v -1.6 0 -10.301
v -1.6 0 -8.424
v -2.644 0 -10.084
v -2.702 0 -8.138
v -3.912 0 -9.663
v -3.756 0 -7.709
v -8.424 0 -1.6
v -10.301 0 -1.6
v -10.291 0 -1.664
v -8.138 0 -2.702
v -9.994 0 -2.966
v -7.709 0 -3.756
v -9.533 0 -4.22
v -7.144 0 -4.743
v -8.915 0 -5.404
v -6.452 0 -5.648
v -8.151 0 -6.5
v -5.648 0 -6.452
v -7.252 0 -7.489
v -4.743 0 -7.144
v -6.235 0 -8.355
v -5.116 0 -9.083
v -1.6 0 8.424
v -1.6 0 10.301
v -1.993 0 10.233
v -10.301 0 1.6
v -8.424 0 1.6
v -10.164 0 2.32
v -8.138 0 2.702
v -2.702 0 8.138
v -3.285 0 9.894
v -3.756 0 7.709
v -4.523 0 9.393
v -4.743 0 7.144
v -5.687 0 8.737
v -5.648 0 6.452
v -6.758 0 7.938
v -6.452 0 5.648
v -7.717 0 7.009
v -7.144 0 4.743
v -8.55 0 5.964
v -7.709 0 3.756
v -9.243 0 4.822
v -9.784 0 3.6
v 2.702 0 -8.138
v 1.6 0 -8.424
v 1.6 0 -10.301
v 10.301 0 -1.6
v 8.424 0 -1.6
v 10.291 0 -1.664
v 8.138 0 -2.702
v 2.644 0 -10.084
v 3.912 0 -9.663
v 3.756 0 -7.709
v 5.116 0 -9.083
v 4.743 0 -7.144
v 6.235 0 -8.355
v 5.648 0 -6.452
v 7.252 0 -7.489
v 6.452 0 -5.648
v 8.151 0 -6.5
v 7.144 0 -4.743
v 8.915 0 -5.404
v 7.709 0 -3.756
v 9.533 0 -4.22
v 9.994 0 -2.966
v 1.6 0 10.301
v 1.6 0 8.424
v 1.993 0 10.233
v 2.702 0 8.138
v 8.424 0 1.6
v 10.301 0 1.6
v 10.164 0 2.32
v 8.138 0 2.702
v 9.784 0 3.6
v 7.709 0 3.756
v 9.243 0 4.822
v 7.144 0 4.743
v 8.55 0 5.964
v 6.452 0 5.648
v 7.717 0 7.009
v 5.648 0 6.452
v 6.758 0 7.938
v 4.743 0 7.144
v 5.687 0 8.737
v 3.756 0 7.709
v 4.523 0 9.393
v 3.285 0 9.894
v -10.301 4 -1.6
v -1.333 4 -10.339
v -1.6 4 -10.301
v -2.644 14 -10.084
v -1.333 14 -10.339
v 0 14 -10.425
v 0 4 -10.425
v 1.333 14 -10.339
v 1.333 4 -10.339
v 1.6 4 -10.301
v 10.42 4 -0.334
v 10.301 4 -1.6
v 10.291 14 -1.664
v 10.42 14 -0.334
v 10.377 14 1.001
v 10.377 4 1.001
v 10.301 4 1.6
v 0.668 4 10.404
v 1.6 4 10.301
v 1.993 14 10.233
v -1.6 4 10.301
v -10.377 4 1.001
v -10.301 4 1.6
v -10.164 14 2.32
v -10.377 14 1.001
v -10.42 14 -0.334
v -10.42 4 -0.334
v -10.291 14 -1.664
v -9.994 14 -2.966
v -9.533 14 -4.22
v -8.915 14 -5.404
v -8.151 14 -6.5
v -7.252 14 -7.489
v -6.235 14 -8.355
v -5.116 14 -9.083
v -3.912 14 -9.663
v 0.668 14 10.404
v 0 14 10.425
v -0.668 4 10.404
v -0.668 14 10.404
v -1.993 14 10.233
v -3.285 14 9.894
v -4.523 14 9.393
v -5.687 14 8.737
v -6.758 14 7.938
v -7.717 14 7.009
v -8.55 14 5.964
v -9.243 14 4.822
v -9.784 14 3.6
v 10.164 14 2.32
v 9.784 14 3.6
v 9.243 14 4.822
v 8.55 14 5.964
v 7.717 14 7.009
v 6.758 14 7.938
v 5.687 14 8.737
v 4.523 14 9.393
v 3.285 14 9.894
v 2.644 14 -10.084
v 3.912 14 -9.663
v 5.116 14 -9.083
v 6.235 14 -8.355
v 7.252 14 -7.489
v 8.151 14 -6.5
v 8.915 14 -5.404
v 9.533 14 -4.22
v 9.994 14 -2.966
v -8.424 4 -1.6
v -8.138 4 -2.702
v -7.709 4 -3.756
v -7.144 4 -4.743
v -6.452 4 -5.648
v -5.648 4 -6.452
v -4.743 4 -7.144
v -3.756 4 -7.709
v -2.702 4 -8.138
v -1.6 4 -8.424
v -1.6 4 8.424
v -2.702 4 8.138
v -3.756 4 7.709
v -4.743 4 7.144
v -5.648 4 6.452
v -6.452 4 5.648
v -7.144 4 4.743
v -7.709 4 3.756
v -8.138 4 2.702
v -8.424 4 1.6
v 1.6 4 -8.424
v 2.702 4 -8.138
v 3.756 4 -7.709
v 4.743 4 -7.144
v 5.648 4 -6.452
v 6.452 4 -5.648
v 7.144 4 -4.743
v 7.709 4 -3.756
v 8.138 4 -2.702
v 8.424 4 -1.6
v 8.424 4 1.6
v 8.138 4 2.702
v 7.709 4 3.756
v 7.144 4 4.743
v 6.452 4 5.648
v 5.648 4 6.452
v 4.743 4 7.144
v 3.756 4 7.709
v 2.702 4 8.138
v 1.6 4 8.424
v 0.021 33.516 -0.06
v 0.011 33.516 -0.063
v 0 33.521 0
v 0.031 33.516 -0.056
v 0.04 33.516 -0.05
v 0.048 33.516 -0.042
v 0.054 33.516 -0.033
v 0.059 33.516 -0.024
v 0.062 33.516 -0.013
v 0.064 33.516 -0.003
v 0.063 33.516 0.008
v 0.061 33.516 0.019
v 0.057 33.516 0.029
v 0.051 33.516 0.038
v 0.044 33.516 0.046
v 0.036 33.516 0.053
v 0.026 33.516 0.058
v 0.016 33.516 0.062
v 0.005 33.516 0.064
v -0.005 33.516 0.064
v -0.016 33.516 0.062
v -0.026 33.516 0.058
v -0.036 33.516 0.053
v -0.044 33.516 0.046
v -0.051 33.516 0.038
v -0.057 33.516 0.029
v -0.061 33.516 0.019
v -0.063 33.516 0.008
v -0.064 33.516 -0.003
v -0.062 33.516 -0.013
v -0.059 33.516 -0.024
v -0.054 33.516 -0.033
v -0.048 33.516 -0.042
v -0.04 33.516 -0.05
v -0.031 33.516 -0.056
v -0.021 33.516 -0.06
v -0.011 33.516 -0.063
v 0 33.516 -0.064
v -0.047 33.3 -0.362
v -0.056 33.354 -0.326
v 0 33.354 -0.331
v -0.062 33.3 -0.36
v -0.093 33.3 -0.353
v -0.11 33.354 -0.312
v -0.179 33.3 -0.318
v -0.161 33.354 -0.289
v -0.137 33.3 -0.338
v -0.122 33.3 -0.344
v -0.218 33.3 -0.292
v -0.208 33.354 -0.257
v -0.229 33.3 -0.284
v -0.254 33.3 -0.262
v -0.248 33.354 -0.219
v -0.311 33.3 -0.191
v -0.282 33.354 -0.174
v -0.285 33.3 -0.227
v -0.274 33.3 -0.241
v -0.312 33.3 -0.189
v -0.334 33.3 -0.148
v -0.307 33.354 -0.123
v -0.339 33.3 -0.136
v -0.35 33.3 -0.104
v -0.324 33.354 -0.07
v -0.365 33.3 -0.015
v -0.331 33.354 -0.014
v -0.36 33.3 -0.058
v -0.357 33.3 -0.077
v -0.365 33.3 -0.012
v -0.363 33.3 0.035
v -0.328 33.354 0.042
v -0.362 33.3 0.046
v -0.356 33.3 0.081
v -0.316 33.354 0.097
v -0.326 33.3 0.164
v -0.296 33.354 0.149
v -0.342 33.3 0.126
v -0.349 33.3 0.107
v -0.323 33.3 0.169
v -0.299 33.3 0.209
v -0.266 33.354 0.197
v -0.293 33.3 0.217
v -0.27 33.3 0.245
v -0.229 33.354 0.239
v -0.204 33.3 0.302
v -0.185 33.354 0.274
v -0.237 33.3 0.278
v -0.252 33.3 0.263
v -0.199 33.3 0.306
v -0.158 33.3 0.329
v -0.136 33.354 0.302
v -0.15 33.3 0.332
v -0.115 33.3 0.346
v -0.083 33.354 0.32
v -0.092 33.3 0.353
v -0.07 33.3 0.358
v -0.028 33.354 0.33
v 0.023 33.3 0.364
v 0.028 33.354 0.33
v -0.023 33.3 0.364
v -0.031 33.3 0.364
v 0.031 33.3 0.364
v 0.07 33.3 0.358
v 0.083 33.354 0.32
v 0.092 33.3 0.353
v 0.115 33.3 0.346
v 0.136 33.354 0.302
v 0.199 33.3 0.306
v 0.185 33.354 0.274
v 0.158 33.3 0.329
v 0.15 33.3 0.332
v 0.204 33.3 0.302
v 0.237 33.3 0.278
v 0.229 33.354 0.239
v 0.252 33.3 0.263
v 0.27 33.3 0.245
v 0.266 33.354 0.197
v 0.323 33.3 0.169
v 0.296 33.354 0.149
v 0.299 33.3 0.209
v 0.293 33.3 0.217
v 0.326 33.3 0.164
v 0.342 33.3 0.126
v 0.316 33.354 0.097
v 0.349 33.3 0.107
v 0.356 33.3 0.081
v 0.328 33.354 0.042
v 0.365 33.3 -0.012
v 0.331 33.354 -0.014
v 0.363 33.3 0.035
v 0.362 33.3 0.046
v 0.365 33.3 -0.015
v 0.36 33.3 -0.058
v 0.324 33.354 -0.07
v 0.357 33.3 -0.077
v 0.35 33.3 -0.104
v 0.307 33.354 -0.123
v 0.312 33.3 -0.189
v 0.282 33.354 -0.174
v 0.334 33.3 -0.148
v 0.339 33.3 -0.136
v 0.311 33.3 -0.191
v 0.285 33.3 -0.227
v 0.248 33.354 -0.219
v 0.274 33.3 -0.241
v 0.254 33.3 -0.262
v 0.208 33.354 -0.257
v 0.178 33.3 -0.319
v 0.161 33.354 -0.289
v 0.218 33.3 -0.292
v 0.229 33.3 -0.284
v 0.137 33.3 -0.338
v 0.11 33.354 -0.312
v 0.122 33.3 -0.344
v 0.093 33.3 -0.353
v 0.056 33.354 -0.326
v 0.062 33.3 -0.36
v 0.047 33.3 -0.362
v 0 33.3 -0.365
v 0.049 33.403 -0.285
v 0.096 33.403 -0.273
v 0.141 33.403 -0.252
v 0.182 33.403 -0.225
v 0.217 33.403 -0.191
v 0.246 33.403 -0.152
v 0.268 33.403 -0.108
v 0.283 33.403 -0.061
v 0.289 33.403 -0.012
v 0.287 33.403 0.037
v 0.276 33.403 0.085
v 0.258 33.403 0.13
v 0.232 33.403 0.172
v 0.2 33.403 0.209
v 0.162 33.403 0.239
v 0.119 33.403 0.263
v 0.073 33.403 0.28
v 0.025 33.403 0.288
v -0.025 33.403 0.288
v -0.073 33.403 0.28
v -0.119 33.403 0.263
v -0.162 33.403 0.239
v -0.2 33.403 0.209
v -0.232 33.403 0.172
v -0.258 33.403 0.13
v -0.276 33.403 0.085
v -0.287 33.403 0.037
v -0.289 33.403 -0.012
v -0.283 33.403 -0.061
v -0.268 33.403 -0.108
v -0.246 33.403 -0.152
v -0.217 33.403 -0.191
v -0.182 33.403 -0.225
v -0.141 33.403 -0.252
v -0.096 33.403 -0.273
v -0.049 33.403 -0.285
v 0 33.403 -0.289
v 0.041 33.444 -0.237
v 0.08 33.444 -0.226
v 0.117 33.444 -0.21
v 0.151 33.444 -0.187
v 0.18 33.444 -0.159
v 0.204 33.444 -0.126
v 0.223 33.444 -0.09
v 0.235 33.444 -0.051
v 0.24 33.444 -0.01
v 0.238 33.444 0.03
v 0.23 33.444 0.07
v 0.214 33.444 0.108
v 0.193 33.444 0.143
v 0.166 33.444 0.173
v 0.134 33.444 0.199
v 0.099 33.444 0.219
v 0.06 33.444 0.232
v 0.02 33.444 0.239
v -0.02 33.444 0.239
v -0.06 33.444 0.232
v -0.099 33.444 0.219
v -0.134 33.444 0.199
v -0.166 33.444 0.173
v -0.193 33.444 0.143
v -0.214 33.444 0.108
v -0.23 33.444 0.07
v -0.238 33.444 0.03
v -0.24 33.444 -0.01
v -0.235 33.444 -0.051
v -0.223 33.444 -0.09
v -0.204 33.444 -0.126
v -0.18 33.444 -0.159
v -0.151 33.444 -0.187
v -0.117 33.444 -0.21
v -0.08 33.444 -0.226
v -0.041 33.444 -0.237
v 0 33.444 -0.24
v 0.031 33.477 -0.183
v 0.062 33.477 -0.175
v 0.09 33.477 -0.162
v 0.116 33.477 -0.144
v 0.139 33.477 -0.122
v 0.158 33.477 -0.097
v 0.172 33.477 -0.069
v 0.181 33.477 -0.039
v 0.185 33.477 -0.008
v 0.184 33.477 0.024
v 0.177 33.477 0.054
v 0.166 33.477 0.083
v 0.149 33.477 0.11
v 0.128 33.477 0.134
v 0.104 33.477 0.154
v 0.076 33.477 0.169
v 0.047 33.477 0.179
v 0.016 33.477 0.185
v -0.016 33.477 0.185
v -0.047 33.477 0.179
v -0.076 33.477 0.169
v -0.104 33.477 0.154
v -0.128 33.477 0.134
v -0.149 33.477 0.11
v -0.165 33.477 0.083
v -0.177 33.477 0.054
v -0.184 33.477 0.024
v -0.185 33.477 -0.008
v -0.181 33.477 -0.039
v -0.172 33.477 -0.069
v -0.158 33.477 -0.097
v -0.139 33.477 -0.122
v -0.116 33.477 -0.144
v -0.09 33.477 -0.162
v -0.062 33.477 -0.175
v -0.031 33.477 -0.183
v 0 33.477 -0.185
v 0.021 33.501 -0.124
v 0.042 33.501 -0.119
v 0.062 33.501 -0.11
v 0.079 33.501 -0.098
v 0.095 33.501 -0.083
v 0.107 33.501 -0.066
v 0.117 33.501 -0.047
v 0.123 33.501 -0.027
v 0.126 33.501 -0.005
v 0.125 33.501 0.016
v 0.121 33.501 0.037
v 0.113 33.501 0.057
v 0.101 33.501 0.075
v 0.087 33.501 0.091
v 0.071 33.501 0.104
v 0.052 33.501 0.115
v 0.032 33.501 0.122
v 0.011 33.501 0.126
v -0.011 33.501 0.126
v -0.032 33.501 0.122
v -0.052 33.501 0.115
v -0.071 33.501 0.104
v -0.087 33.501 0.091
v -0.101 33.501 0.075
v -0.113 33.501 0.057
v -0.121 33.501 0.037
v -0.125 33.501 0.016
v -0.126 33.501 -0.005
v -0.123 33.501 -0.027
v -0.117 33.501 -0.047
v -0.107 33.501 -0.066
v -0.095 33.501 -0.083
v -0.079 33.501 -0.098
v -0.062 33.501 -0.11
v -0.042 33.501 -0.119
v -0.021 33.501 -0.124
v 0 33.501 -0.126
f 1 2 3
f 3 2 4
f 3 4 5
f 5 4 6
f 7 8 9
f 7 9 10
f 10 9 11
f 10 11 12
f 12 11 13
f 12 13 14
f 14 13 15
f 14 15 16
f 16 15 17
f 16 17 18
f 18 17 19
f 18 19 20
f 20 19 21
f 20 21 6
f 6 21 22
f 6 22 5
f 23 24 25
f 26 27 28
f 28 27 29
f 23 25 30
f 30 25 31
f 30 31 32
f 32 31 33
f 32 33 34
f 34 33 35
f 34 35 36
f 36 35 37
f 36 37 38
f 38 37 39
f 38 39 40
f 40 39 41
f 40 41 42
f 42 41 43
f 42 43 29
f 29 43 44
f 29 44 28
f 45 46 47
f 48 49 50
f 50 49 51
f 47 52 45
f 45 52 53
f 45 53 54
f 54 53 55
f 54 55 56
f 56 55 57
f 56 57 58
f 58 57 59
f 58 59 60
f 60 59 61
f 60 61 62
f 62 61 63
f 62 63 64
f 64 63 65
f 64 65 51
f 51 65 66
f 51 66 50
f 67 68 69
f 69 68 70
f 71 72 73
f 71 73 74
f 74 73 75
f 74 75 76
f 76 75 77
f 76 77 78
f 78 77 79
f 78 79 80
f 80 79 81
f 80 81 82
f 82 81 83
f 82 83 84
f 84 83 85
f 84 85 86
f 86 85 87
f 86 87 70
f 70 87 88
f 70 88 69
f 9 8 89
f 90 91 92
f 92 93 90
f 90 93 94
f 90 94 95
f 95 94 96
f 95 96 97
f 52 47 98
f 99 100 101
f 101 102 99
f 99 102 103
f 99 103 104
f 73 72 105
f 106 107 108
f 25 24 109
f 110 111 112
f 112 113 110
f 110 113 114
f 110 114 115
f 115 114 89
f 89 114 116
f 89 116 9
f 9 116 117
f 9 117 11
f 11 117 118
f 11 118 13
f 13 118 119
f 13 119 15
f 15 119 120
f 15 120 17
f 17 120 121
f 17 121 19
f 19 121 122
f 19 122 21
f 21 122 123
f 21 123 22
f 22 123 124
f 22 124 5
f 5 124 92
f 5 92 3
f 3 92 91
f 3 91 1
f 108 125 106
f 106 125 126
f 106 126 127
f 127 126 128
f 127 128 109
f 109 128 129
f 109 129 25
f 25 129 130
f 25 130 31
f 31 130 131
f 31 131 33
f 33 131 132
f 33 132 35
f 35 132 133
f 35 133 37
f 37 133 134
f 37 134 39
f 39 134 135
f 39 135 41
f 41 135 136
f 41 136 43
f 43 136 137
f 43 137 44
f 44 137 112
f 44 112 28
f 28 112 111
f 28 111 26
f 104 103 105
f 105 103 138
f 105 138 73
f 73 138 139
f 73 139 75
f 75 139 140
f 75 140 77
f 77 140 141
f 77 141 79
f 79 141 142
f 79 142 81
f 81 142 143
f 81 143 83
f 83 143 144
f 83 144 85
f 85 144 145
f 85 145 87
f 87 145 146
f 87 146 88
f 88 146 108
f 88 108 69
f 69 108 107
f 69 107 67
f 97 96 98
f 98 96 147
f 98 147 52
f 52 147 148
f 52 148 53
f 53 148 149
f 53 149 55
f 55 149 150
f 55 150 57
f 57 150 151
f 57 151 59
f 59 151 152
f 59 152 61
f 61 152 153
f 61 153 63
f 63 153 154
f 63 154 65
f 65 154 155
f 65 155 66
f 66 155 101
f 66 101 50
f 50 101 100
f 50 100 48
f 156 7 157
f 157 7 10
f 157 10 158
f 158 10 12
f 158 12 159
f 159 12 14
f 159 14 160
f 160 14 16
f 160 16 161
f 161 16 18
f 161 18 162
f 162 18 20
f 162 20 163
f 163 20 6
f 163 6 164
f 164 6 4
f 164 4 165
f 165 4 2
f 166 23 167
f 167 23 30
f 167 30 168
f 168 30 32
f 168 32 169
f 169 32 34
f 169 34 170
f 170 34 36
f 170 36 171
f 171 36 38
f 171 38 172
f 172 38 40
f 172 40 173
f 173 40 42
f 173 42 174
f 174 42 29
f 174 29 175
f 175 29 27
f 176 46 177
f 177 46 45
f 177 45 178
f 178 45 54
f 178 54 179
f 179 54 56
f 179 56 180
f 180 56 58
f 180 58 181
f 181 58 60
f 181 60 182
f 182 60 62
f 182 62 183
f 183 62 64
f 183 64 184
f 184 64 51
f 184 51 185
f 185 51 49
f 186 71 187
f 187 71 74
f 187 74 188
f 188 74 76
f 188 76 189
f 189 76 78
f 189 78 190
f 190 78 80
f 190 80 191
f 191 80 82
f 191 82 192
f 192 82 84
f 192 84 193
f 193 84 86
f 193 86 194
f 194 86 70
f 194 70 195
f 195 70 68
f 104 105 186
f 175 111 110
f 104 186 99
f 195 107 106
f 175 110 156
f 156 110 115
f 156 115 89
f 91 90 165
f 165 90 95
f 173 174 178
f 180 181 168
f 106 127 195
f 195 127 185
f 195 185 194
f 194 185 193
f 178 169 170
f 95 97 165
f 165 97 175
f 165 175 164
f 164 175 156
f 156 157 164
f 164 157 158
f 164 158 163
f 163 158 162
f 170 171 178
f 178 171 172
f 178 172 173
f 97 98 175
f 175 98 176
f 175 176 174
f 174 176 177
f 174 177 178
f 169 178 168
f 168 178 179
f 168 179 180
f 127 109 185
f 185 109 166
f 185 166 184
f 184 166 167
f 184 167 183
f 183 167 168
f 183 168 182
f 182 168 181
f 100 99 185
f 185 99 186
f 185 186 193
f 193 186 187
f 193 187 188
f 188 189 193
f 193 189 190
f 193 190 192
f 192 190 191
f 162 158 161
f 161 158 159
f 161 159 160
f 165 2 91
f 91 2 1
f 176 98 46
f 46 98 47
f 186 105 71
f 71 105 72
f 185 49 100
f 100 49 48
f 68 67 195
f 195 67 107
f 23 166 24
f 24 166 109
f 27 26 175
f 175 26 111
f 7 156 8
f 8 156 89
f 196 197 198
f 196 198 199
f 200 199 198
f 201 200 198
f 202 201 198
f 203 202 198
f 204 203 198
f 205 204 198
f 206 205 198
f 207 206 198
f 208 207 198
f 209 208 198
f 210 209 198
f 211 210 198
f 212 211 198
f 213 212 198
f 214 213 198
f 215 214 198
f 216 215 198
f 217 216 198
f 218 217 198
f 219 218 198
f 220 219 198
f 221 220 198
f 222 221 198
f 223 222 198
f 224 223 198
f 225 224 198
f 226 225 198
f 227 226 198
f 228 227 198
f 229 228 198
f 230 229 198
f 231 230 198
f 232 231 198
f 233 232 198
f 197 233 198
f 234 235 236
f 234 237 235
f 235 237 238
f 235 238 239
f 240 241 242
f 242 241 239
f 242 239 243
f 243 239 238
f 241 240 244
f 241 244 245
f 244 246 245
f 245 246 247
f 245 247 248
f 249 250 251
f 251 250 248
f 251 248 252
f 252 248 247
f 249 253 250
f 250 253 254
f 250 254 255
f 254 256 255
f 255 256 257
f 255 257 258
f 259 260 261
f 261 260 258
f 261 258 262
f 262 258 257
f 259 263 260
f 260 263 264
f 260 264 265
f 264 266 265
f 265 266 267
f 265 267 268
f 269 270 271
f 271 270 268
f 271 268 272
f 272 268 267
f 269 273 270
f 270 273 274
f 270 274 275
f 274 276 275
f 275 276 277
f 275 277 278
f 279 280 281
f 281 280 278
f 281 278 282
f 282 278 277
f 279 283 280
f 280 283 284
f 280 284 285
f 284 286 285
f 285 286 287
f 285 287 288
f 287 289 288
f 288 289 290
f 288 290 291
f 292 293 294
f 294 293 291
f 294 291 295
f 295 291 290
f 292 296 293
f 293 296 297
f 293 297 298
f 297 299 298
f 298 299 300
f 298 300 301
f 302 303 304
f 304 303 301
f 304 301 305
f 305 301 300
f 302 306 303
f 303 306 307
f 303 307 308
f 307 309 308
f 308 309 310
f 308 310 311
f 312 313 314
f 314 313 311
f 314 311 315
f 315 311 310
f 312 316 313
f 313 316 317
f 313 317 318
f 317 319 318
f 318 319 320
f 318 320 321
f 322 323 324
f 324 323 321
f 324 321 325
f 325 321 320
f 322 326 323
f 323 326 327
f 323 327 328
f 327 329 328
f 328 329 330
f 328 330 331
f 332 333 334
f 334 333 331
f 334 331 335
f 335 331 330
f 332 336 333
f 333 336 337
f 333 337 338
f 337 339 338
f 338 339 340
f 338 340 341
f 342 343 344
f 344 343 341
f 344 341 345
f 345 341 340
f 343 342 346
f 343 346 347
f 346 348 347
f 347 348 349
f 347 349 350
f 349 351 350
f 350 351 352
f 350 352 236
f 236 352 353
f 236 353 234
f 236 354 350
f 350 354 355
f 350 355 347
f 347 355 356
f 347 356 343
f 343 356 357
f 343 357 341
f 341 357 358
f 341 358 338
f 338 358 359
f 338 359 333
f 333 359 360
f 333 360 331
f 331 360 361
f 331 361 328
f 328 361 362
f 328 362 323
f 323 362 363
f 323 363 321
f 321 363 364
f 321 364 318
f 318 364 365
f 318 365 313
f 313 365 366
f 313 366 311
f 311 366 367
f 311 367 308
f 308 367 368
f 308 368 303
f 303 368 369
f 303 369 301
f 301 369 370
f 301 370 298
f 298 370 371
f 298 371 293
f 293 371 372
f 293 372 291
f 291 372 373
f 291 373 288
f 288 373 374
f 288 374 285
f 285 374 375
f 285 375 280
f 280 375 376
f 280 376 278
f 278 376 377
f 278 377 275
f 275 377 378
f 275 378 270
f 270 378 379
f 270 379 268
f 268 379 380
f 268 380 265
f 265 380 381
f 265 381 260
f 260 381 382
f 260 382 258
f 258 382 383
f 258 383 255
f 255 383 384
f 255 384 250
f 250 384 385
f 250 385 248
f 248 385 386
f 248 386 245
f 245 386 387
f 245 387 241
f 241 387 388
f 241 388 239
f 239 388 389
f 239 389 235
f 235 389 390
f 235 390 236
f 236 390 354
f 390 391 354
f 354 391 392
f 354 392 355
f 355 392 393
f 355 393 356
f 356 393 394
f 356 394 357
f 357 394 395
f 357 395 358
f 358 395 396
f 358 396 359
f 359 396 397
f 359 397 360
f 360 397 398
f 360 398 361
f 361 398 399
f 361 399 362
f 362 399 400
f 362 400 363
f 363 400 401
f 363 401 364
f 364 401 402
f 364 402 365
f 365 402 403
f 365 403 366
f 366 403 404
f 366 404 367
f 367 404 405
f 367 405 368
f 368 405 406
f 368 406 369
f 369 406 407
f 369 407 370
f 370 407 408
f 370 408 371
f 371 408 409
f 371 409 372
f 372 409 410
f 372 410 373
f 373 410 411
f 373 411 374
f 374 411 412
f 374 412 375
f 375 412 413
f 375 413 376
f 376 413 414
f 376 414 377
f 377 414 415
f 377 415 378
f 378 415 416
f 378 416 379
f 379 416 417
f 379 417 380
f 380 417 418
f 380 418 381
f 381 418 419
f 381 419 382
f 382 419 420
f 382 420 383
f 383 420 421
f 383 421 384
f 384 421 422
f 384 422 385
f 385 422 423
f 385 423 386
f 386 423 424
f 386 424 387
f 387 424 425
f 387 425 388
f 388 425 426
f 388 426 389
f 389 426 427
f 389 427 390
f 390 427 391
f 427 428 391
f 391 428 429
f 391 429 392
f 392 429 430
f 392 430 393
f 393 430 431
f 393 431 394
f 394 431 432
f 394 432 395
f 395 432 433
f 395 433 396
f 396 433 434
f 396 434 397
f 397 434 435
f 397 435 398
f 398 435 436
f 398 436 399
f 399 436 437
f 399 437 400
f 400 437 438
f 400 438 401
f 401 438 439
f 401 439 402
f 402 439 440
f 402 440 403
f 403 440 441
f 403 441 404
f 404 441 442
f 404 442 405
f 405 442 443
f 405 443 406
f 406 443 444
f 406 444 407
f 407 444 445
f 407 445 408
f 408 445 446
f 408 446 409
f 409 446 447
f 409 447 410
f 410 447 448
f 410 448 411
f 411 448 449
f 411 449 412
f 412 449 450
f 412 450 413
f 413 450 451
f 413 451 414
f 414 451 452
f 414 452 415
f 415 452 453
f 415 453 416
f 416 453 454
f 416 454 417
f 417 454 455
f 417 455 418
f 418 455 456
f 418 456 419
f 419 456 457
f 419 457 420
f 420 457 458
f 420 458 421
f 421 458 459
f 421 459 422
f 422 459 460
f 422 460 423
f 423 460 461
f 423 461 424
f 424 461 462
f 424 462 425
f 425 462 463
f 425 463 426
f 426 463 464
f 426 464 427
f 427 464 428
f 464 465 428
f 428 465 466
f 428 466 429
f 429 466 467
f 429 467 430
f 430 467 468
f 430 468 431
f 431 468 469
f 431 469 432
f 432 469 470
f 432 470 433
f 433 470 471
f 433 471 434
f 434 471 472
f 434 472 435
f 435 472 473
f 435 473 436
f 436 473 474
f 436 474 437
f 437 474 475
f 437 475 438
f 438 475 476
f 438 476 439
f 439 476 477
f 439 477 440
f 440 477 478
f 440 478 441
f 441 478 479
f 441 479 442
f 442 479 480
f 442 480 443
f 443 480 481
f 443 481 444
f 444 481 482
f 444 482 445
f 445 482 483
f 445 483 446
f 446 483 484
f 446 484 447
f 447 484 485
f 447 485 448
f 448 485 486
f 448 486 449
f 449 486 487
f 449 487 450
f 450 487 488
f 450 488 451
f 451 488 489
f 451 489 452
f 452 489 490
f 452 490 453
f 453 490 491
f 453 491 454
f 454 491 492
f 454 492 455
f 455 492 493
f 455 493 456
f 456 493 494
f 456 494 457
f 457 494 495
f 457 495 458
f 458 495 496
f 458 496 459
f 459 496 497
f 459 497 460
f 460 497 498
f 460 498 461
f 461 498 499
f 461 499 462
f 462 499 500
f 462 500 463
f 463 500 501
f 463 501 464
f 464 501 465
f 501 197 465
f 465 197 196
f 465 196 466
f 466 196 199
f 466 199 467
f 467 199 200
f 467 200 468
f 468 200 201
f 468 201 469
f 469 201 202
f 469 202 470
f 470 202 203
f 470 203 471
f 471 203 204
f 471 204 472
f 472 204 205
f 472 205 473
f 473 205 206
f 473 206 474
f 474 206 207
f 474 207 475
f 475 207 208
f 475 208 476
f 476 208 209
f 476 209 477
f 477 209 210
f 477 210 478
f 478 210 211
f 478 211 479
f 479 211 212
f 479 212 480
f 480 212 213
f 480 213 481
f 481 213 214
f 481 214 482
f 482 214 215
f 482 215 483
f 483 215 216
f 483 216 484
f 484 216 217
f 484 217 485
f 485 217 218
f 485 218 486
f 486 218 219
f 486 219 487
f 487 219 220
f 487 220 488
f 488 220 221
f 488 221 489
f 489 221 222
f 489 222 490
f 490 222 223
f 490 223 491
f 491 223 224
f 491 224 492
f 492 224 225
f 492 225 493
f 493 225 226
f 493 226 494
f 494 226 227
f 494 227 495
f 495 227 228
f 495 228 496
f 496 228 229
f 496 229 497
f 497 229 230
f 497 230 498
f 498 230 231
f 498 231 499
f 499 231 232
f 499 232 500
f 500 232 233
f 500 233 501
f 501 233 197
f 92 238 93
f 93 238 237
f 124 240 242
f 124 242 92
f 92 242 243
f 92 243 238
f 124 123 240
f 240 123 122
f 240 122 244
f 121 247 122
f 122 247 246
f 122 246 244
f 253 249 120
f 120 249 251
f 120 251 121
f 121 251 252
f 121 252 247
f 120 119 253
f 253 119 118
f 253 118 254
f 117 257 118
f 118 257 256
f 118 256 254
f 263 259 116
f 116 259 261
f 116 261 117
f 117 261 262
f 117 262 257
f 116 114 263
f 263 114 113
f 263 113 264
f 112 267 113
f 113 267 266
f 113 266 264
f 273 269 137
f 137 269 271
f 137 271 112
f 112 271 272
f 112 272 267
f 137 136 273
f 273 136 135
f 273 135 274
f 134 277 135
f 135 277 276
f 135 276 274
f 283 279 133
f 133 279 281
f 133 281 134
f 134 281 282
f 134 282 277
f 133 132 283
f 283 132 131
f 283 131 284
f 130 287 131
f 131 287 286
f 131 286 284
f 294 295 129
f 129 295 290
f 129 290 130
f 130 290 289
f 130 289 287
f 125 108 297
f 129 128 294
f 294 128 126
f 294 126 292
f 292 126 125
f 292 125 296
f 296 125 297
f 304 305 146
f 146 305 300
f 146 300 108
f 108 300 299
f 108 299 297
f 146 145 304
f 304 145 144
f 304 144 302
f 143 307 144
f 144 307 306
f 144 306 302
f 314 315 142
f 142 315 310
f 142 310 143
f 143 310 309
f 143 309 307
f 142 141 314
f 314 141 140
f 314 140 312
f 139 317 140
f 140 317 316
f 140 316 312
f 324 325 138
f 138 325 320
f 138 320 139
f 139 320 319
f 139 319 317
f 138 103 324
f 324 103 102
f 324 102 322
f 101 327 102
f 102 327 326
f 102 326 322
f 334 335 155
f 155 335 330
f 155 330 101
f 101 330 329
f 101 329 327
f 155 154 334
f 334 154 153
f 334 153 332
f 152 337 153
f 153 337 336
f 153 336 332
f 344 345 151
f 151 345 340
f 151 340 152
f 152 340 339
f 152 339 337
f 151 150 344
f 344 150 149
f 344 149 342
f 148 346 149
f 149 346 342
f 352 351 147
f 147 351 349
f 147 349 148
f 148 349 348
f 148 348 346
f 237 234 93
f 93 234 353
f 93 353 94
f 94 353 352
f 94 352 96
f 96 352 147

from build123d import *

# Parameters (mm, degrees)
SKETCH1_R           = 10.425
SKETCH1_R_2         = 8.575
BOSS_EXTRUDE1_DEPTH = 14
SKETCH1_2_R         = 8.575
BOSS_EXTRUDE2_DEPTH = 14
SKETCH1_3_R         = 8.575
CUT_EXTRUDE1_DEPTH  = 4
CUT_EXTRUDE3_START  = 4
CUT_EXTRUDE3_DEPTH  = 4


with BuildPart() as part:
    # Sketch1 → Boss-Extrude1 (new body)
    with BuildSketch(Plane(origin=(0, 0, 0), x_dir=(1, 0, 0), z_dir=(0, 1, 0))):
        Circle(SKETCH1_R)
        Circle(SKETCH1_R_2, mode=Mode.SUBTRACT)
    extrude(amount=BOSS_EXTRUDE1_DEPTH)

    # Sketch1<2> → Boss-Extrude2 (add)
    with BuildSketch(Plane(origin=(0, 0, 0), x_dir=(1, 0, 0), z_dir=(0, 1, 0))):
        Circle(SKETCH1_2_R)
    extrude(amount=BOSS_EXTRUDE2_DEPTH)

    # Sketch1<3> → Cut-Extrude1 (cut)
    with BuildSketch(Plane(origin=(0, 0, 0), x_dir=(1, 0, 0), z_dir=(0, 1, 0))):
        Circle(SKETCH1_3_R)
    extrude(amount=CUT_EXTRUDE1_DEPTH, mode=Mode.SUBTRACT)

    # Sketch2 → Cut-Extrude3 (cut)
    with BuildSketch(Plane.XZ.offset(-4).offset(CUT_EXTRUDE3_START)):
        with BuildLine():
            Line((-1.6, -8.424406507), (-1.6, -11.258312908))
            Line((-1.6, -11.258312908), (1.6, -11.258312908))
            Line((1.6, -11.258312908), (1.6, -8.424406507))
            ThreePointArc((1.6, -8.424406507), (0, -8.575), (-1.6, -8.424406507))
        make_face()
        with BuildLine():
            Line((-10.902270297, -1.6), (-8.424406507, -1.6))
            ThreePointArc((-8.424406507, -1.6), (-8.575, 0), (-8.424406507, 1.6))
            Line((-8.424406507, 1.6), (-10.902270297, 1.6))
            Line((-10.902270297, 1.6), (-10.902270297, -1.6))
        make_face()
        with BuildLine():
            Line((-1.6, 10.963656954), (-1.6, 8.424406507))
            ThreePointArc((-1.6, 8.424406507), (-0.803535687, 8.537268615), (0, 8.575))
            ThreePointArc((0, 8.575), (0.803535687, 8.537268615), (1.6, 8.424406507))
            Line((1.6, 8.424406507), (1.6, 10.963656954))
            Line((1.6, 10.963656954), (-1.6, 10.963656954))
        make_face()
        with BuildLine():
            ThreePointArc((8.424406507, 1.6), (8.575, 0), (8.424406507, -1.6))
            Line((8.424406507, -1.6), (11.025043611, -1.6))
            Line((11.025043611, -1.6), (11.025043611, 1.6))
            Line((11.025043611, 1.6), (8.424406507, 1.6))
        make_face()
    extrude(amount=-CUT_EXTRUDE3_DEPTH, mode=Mode.SUBTRACT)

    # Sketch4 → Revolve4 (revolve)
    with BuildSketch(Plane(origin=(0, 0, 0), x_dir=(0, 0, -1), z_dir=(1, 0, 0))):
        with BuildLine():
            Line((0.364875, 33.3), (10.425, 14))
            Line((10.425, 14), (0, 14))
            Line((0, 14), (0, 33.521277517))
            ThreePointArc((0, 33.521277517), (0.213364421, 33.461635627), (0.364875, 33.3))
        make_face()
    revolve(axis=Axis((0, 14, 0), (0, 1, 0)))


solid = part.part
